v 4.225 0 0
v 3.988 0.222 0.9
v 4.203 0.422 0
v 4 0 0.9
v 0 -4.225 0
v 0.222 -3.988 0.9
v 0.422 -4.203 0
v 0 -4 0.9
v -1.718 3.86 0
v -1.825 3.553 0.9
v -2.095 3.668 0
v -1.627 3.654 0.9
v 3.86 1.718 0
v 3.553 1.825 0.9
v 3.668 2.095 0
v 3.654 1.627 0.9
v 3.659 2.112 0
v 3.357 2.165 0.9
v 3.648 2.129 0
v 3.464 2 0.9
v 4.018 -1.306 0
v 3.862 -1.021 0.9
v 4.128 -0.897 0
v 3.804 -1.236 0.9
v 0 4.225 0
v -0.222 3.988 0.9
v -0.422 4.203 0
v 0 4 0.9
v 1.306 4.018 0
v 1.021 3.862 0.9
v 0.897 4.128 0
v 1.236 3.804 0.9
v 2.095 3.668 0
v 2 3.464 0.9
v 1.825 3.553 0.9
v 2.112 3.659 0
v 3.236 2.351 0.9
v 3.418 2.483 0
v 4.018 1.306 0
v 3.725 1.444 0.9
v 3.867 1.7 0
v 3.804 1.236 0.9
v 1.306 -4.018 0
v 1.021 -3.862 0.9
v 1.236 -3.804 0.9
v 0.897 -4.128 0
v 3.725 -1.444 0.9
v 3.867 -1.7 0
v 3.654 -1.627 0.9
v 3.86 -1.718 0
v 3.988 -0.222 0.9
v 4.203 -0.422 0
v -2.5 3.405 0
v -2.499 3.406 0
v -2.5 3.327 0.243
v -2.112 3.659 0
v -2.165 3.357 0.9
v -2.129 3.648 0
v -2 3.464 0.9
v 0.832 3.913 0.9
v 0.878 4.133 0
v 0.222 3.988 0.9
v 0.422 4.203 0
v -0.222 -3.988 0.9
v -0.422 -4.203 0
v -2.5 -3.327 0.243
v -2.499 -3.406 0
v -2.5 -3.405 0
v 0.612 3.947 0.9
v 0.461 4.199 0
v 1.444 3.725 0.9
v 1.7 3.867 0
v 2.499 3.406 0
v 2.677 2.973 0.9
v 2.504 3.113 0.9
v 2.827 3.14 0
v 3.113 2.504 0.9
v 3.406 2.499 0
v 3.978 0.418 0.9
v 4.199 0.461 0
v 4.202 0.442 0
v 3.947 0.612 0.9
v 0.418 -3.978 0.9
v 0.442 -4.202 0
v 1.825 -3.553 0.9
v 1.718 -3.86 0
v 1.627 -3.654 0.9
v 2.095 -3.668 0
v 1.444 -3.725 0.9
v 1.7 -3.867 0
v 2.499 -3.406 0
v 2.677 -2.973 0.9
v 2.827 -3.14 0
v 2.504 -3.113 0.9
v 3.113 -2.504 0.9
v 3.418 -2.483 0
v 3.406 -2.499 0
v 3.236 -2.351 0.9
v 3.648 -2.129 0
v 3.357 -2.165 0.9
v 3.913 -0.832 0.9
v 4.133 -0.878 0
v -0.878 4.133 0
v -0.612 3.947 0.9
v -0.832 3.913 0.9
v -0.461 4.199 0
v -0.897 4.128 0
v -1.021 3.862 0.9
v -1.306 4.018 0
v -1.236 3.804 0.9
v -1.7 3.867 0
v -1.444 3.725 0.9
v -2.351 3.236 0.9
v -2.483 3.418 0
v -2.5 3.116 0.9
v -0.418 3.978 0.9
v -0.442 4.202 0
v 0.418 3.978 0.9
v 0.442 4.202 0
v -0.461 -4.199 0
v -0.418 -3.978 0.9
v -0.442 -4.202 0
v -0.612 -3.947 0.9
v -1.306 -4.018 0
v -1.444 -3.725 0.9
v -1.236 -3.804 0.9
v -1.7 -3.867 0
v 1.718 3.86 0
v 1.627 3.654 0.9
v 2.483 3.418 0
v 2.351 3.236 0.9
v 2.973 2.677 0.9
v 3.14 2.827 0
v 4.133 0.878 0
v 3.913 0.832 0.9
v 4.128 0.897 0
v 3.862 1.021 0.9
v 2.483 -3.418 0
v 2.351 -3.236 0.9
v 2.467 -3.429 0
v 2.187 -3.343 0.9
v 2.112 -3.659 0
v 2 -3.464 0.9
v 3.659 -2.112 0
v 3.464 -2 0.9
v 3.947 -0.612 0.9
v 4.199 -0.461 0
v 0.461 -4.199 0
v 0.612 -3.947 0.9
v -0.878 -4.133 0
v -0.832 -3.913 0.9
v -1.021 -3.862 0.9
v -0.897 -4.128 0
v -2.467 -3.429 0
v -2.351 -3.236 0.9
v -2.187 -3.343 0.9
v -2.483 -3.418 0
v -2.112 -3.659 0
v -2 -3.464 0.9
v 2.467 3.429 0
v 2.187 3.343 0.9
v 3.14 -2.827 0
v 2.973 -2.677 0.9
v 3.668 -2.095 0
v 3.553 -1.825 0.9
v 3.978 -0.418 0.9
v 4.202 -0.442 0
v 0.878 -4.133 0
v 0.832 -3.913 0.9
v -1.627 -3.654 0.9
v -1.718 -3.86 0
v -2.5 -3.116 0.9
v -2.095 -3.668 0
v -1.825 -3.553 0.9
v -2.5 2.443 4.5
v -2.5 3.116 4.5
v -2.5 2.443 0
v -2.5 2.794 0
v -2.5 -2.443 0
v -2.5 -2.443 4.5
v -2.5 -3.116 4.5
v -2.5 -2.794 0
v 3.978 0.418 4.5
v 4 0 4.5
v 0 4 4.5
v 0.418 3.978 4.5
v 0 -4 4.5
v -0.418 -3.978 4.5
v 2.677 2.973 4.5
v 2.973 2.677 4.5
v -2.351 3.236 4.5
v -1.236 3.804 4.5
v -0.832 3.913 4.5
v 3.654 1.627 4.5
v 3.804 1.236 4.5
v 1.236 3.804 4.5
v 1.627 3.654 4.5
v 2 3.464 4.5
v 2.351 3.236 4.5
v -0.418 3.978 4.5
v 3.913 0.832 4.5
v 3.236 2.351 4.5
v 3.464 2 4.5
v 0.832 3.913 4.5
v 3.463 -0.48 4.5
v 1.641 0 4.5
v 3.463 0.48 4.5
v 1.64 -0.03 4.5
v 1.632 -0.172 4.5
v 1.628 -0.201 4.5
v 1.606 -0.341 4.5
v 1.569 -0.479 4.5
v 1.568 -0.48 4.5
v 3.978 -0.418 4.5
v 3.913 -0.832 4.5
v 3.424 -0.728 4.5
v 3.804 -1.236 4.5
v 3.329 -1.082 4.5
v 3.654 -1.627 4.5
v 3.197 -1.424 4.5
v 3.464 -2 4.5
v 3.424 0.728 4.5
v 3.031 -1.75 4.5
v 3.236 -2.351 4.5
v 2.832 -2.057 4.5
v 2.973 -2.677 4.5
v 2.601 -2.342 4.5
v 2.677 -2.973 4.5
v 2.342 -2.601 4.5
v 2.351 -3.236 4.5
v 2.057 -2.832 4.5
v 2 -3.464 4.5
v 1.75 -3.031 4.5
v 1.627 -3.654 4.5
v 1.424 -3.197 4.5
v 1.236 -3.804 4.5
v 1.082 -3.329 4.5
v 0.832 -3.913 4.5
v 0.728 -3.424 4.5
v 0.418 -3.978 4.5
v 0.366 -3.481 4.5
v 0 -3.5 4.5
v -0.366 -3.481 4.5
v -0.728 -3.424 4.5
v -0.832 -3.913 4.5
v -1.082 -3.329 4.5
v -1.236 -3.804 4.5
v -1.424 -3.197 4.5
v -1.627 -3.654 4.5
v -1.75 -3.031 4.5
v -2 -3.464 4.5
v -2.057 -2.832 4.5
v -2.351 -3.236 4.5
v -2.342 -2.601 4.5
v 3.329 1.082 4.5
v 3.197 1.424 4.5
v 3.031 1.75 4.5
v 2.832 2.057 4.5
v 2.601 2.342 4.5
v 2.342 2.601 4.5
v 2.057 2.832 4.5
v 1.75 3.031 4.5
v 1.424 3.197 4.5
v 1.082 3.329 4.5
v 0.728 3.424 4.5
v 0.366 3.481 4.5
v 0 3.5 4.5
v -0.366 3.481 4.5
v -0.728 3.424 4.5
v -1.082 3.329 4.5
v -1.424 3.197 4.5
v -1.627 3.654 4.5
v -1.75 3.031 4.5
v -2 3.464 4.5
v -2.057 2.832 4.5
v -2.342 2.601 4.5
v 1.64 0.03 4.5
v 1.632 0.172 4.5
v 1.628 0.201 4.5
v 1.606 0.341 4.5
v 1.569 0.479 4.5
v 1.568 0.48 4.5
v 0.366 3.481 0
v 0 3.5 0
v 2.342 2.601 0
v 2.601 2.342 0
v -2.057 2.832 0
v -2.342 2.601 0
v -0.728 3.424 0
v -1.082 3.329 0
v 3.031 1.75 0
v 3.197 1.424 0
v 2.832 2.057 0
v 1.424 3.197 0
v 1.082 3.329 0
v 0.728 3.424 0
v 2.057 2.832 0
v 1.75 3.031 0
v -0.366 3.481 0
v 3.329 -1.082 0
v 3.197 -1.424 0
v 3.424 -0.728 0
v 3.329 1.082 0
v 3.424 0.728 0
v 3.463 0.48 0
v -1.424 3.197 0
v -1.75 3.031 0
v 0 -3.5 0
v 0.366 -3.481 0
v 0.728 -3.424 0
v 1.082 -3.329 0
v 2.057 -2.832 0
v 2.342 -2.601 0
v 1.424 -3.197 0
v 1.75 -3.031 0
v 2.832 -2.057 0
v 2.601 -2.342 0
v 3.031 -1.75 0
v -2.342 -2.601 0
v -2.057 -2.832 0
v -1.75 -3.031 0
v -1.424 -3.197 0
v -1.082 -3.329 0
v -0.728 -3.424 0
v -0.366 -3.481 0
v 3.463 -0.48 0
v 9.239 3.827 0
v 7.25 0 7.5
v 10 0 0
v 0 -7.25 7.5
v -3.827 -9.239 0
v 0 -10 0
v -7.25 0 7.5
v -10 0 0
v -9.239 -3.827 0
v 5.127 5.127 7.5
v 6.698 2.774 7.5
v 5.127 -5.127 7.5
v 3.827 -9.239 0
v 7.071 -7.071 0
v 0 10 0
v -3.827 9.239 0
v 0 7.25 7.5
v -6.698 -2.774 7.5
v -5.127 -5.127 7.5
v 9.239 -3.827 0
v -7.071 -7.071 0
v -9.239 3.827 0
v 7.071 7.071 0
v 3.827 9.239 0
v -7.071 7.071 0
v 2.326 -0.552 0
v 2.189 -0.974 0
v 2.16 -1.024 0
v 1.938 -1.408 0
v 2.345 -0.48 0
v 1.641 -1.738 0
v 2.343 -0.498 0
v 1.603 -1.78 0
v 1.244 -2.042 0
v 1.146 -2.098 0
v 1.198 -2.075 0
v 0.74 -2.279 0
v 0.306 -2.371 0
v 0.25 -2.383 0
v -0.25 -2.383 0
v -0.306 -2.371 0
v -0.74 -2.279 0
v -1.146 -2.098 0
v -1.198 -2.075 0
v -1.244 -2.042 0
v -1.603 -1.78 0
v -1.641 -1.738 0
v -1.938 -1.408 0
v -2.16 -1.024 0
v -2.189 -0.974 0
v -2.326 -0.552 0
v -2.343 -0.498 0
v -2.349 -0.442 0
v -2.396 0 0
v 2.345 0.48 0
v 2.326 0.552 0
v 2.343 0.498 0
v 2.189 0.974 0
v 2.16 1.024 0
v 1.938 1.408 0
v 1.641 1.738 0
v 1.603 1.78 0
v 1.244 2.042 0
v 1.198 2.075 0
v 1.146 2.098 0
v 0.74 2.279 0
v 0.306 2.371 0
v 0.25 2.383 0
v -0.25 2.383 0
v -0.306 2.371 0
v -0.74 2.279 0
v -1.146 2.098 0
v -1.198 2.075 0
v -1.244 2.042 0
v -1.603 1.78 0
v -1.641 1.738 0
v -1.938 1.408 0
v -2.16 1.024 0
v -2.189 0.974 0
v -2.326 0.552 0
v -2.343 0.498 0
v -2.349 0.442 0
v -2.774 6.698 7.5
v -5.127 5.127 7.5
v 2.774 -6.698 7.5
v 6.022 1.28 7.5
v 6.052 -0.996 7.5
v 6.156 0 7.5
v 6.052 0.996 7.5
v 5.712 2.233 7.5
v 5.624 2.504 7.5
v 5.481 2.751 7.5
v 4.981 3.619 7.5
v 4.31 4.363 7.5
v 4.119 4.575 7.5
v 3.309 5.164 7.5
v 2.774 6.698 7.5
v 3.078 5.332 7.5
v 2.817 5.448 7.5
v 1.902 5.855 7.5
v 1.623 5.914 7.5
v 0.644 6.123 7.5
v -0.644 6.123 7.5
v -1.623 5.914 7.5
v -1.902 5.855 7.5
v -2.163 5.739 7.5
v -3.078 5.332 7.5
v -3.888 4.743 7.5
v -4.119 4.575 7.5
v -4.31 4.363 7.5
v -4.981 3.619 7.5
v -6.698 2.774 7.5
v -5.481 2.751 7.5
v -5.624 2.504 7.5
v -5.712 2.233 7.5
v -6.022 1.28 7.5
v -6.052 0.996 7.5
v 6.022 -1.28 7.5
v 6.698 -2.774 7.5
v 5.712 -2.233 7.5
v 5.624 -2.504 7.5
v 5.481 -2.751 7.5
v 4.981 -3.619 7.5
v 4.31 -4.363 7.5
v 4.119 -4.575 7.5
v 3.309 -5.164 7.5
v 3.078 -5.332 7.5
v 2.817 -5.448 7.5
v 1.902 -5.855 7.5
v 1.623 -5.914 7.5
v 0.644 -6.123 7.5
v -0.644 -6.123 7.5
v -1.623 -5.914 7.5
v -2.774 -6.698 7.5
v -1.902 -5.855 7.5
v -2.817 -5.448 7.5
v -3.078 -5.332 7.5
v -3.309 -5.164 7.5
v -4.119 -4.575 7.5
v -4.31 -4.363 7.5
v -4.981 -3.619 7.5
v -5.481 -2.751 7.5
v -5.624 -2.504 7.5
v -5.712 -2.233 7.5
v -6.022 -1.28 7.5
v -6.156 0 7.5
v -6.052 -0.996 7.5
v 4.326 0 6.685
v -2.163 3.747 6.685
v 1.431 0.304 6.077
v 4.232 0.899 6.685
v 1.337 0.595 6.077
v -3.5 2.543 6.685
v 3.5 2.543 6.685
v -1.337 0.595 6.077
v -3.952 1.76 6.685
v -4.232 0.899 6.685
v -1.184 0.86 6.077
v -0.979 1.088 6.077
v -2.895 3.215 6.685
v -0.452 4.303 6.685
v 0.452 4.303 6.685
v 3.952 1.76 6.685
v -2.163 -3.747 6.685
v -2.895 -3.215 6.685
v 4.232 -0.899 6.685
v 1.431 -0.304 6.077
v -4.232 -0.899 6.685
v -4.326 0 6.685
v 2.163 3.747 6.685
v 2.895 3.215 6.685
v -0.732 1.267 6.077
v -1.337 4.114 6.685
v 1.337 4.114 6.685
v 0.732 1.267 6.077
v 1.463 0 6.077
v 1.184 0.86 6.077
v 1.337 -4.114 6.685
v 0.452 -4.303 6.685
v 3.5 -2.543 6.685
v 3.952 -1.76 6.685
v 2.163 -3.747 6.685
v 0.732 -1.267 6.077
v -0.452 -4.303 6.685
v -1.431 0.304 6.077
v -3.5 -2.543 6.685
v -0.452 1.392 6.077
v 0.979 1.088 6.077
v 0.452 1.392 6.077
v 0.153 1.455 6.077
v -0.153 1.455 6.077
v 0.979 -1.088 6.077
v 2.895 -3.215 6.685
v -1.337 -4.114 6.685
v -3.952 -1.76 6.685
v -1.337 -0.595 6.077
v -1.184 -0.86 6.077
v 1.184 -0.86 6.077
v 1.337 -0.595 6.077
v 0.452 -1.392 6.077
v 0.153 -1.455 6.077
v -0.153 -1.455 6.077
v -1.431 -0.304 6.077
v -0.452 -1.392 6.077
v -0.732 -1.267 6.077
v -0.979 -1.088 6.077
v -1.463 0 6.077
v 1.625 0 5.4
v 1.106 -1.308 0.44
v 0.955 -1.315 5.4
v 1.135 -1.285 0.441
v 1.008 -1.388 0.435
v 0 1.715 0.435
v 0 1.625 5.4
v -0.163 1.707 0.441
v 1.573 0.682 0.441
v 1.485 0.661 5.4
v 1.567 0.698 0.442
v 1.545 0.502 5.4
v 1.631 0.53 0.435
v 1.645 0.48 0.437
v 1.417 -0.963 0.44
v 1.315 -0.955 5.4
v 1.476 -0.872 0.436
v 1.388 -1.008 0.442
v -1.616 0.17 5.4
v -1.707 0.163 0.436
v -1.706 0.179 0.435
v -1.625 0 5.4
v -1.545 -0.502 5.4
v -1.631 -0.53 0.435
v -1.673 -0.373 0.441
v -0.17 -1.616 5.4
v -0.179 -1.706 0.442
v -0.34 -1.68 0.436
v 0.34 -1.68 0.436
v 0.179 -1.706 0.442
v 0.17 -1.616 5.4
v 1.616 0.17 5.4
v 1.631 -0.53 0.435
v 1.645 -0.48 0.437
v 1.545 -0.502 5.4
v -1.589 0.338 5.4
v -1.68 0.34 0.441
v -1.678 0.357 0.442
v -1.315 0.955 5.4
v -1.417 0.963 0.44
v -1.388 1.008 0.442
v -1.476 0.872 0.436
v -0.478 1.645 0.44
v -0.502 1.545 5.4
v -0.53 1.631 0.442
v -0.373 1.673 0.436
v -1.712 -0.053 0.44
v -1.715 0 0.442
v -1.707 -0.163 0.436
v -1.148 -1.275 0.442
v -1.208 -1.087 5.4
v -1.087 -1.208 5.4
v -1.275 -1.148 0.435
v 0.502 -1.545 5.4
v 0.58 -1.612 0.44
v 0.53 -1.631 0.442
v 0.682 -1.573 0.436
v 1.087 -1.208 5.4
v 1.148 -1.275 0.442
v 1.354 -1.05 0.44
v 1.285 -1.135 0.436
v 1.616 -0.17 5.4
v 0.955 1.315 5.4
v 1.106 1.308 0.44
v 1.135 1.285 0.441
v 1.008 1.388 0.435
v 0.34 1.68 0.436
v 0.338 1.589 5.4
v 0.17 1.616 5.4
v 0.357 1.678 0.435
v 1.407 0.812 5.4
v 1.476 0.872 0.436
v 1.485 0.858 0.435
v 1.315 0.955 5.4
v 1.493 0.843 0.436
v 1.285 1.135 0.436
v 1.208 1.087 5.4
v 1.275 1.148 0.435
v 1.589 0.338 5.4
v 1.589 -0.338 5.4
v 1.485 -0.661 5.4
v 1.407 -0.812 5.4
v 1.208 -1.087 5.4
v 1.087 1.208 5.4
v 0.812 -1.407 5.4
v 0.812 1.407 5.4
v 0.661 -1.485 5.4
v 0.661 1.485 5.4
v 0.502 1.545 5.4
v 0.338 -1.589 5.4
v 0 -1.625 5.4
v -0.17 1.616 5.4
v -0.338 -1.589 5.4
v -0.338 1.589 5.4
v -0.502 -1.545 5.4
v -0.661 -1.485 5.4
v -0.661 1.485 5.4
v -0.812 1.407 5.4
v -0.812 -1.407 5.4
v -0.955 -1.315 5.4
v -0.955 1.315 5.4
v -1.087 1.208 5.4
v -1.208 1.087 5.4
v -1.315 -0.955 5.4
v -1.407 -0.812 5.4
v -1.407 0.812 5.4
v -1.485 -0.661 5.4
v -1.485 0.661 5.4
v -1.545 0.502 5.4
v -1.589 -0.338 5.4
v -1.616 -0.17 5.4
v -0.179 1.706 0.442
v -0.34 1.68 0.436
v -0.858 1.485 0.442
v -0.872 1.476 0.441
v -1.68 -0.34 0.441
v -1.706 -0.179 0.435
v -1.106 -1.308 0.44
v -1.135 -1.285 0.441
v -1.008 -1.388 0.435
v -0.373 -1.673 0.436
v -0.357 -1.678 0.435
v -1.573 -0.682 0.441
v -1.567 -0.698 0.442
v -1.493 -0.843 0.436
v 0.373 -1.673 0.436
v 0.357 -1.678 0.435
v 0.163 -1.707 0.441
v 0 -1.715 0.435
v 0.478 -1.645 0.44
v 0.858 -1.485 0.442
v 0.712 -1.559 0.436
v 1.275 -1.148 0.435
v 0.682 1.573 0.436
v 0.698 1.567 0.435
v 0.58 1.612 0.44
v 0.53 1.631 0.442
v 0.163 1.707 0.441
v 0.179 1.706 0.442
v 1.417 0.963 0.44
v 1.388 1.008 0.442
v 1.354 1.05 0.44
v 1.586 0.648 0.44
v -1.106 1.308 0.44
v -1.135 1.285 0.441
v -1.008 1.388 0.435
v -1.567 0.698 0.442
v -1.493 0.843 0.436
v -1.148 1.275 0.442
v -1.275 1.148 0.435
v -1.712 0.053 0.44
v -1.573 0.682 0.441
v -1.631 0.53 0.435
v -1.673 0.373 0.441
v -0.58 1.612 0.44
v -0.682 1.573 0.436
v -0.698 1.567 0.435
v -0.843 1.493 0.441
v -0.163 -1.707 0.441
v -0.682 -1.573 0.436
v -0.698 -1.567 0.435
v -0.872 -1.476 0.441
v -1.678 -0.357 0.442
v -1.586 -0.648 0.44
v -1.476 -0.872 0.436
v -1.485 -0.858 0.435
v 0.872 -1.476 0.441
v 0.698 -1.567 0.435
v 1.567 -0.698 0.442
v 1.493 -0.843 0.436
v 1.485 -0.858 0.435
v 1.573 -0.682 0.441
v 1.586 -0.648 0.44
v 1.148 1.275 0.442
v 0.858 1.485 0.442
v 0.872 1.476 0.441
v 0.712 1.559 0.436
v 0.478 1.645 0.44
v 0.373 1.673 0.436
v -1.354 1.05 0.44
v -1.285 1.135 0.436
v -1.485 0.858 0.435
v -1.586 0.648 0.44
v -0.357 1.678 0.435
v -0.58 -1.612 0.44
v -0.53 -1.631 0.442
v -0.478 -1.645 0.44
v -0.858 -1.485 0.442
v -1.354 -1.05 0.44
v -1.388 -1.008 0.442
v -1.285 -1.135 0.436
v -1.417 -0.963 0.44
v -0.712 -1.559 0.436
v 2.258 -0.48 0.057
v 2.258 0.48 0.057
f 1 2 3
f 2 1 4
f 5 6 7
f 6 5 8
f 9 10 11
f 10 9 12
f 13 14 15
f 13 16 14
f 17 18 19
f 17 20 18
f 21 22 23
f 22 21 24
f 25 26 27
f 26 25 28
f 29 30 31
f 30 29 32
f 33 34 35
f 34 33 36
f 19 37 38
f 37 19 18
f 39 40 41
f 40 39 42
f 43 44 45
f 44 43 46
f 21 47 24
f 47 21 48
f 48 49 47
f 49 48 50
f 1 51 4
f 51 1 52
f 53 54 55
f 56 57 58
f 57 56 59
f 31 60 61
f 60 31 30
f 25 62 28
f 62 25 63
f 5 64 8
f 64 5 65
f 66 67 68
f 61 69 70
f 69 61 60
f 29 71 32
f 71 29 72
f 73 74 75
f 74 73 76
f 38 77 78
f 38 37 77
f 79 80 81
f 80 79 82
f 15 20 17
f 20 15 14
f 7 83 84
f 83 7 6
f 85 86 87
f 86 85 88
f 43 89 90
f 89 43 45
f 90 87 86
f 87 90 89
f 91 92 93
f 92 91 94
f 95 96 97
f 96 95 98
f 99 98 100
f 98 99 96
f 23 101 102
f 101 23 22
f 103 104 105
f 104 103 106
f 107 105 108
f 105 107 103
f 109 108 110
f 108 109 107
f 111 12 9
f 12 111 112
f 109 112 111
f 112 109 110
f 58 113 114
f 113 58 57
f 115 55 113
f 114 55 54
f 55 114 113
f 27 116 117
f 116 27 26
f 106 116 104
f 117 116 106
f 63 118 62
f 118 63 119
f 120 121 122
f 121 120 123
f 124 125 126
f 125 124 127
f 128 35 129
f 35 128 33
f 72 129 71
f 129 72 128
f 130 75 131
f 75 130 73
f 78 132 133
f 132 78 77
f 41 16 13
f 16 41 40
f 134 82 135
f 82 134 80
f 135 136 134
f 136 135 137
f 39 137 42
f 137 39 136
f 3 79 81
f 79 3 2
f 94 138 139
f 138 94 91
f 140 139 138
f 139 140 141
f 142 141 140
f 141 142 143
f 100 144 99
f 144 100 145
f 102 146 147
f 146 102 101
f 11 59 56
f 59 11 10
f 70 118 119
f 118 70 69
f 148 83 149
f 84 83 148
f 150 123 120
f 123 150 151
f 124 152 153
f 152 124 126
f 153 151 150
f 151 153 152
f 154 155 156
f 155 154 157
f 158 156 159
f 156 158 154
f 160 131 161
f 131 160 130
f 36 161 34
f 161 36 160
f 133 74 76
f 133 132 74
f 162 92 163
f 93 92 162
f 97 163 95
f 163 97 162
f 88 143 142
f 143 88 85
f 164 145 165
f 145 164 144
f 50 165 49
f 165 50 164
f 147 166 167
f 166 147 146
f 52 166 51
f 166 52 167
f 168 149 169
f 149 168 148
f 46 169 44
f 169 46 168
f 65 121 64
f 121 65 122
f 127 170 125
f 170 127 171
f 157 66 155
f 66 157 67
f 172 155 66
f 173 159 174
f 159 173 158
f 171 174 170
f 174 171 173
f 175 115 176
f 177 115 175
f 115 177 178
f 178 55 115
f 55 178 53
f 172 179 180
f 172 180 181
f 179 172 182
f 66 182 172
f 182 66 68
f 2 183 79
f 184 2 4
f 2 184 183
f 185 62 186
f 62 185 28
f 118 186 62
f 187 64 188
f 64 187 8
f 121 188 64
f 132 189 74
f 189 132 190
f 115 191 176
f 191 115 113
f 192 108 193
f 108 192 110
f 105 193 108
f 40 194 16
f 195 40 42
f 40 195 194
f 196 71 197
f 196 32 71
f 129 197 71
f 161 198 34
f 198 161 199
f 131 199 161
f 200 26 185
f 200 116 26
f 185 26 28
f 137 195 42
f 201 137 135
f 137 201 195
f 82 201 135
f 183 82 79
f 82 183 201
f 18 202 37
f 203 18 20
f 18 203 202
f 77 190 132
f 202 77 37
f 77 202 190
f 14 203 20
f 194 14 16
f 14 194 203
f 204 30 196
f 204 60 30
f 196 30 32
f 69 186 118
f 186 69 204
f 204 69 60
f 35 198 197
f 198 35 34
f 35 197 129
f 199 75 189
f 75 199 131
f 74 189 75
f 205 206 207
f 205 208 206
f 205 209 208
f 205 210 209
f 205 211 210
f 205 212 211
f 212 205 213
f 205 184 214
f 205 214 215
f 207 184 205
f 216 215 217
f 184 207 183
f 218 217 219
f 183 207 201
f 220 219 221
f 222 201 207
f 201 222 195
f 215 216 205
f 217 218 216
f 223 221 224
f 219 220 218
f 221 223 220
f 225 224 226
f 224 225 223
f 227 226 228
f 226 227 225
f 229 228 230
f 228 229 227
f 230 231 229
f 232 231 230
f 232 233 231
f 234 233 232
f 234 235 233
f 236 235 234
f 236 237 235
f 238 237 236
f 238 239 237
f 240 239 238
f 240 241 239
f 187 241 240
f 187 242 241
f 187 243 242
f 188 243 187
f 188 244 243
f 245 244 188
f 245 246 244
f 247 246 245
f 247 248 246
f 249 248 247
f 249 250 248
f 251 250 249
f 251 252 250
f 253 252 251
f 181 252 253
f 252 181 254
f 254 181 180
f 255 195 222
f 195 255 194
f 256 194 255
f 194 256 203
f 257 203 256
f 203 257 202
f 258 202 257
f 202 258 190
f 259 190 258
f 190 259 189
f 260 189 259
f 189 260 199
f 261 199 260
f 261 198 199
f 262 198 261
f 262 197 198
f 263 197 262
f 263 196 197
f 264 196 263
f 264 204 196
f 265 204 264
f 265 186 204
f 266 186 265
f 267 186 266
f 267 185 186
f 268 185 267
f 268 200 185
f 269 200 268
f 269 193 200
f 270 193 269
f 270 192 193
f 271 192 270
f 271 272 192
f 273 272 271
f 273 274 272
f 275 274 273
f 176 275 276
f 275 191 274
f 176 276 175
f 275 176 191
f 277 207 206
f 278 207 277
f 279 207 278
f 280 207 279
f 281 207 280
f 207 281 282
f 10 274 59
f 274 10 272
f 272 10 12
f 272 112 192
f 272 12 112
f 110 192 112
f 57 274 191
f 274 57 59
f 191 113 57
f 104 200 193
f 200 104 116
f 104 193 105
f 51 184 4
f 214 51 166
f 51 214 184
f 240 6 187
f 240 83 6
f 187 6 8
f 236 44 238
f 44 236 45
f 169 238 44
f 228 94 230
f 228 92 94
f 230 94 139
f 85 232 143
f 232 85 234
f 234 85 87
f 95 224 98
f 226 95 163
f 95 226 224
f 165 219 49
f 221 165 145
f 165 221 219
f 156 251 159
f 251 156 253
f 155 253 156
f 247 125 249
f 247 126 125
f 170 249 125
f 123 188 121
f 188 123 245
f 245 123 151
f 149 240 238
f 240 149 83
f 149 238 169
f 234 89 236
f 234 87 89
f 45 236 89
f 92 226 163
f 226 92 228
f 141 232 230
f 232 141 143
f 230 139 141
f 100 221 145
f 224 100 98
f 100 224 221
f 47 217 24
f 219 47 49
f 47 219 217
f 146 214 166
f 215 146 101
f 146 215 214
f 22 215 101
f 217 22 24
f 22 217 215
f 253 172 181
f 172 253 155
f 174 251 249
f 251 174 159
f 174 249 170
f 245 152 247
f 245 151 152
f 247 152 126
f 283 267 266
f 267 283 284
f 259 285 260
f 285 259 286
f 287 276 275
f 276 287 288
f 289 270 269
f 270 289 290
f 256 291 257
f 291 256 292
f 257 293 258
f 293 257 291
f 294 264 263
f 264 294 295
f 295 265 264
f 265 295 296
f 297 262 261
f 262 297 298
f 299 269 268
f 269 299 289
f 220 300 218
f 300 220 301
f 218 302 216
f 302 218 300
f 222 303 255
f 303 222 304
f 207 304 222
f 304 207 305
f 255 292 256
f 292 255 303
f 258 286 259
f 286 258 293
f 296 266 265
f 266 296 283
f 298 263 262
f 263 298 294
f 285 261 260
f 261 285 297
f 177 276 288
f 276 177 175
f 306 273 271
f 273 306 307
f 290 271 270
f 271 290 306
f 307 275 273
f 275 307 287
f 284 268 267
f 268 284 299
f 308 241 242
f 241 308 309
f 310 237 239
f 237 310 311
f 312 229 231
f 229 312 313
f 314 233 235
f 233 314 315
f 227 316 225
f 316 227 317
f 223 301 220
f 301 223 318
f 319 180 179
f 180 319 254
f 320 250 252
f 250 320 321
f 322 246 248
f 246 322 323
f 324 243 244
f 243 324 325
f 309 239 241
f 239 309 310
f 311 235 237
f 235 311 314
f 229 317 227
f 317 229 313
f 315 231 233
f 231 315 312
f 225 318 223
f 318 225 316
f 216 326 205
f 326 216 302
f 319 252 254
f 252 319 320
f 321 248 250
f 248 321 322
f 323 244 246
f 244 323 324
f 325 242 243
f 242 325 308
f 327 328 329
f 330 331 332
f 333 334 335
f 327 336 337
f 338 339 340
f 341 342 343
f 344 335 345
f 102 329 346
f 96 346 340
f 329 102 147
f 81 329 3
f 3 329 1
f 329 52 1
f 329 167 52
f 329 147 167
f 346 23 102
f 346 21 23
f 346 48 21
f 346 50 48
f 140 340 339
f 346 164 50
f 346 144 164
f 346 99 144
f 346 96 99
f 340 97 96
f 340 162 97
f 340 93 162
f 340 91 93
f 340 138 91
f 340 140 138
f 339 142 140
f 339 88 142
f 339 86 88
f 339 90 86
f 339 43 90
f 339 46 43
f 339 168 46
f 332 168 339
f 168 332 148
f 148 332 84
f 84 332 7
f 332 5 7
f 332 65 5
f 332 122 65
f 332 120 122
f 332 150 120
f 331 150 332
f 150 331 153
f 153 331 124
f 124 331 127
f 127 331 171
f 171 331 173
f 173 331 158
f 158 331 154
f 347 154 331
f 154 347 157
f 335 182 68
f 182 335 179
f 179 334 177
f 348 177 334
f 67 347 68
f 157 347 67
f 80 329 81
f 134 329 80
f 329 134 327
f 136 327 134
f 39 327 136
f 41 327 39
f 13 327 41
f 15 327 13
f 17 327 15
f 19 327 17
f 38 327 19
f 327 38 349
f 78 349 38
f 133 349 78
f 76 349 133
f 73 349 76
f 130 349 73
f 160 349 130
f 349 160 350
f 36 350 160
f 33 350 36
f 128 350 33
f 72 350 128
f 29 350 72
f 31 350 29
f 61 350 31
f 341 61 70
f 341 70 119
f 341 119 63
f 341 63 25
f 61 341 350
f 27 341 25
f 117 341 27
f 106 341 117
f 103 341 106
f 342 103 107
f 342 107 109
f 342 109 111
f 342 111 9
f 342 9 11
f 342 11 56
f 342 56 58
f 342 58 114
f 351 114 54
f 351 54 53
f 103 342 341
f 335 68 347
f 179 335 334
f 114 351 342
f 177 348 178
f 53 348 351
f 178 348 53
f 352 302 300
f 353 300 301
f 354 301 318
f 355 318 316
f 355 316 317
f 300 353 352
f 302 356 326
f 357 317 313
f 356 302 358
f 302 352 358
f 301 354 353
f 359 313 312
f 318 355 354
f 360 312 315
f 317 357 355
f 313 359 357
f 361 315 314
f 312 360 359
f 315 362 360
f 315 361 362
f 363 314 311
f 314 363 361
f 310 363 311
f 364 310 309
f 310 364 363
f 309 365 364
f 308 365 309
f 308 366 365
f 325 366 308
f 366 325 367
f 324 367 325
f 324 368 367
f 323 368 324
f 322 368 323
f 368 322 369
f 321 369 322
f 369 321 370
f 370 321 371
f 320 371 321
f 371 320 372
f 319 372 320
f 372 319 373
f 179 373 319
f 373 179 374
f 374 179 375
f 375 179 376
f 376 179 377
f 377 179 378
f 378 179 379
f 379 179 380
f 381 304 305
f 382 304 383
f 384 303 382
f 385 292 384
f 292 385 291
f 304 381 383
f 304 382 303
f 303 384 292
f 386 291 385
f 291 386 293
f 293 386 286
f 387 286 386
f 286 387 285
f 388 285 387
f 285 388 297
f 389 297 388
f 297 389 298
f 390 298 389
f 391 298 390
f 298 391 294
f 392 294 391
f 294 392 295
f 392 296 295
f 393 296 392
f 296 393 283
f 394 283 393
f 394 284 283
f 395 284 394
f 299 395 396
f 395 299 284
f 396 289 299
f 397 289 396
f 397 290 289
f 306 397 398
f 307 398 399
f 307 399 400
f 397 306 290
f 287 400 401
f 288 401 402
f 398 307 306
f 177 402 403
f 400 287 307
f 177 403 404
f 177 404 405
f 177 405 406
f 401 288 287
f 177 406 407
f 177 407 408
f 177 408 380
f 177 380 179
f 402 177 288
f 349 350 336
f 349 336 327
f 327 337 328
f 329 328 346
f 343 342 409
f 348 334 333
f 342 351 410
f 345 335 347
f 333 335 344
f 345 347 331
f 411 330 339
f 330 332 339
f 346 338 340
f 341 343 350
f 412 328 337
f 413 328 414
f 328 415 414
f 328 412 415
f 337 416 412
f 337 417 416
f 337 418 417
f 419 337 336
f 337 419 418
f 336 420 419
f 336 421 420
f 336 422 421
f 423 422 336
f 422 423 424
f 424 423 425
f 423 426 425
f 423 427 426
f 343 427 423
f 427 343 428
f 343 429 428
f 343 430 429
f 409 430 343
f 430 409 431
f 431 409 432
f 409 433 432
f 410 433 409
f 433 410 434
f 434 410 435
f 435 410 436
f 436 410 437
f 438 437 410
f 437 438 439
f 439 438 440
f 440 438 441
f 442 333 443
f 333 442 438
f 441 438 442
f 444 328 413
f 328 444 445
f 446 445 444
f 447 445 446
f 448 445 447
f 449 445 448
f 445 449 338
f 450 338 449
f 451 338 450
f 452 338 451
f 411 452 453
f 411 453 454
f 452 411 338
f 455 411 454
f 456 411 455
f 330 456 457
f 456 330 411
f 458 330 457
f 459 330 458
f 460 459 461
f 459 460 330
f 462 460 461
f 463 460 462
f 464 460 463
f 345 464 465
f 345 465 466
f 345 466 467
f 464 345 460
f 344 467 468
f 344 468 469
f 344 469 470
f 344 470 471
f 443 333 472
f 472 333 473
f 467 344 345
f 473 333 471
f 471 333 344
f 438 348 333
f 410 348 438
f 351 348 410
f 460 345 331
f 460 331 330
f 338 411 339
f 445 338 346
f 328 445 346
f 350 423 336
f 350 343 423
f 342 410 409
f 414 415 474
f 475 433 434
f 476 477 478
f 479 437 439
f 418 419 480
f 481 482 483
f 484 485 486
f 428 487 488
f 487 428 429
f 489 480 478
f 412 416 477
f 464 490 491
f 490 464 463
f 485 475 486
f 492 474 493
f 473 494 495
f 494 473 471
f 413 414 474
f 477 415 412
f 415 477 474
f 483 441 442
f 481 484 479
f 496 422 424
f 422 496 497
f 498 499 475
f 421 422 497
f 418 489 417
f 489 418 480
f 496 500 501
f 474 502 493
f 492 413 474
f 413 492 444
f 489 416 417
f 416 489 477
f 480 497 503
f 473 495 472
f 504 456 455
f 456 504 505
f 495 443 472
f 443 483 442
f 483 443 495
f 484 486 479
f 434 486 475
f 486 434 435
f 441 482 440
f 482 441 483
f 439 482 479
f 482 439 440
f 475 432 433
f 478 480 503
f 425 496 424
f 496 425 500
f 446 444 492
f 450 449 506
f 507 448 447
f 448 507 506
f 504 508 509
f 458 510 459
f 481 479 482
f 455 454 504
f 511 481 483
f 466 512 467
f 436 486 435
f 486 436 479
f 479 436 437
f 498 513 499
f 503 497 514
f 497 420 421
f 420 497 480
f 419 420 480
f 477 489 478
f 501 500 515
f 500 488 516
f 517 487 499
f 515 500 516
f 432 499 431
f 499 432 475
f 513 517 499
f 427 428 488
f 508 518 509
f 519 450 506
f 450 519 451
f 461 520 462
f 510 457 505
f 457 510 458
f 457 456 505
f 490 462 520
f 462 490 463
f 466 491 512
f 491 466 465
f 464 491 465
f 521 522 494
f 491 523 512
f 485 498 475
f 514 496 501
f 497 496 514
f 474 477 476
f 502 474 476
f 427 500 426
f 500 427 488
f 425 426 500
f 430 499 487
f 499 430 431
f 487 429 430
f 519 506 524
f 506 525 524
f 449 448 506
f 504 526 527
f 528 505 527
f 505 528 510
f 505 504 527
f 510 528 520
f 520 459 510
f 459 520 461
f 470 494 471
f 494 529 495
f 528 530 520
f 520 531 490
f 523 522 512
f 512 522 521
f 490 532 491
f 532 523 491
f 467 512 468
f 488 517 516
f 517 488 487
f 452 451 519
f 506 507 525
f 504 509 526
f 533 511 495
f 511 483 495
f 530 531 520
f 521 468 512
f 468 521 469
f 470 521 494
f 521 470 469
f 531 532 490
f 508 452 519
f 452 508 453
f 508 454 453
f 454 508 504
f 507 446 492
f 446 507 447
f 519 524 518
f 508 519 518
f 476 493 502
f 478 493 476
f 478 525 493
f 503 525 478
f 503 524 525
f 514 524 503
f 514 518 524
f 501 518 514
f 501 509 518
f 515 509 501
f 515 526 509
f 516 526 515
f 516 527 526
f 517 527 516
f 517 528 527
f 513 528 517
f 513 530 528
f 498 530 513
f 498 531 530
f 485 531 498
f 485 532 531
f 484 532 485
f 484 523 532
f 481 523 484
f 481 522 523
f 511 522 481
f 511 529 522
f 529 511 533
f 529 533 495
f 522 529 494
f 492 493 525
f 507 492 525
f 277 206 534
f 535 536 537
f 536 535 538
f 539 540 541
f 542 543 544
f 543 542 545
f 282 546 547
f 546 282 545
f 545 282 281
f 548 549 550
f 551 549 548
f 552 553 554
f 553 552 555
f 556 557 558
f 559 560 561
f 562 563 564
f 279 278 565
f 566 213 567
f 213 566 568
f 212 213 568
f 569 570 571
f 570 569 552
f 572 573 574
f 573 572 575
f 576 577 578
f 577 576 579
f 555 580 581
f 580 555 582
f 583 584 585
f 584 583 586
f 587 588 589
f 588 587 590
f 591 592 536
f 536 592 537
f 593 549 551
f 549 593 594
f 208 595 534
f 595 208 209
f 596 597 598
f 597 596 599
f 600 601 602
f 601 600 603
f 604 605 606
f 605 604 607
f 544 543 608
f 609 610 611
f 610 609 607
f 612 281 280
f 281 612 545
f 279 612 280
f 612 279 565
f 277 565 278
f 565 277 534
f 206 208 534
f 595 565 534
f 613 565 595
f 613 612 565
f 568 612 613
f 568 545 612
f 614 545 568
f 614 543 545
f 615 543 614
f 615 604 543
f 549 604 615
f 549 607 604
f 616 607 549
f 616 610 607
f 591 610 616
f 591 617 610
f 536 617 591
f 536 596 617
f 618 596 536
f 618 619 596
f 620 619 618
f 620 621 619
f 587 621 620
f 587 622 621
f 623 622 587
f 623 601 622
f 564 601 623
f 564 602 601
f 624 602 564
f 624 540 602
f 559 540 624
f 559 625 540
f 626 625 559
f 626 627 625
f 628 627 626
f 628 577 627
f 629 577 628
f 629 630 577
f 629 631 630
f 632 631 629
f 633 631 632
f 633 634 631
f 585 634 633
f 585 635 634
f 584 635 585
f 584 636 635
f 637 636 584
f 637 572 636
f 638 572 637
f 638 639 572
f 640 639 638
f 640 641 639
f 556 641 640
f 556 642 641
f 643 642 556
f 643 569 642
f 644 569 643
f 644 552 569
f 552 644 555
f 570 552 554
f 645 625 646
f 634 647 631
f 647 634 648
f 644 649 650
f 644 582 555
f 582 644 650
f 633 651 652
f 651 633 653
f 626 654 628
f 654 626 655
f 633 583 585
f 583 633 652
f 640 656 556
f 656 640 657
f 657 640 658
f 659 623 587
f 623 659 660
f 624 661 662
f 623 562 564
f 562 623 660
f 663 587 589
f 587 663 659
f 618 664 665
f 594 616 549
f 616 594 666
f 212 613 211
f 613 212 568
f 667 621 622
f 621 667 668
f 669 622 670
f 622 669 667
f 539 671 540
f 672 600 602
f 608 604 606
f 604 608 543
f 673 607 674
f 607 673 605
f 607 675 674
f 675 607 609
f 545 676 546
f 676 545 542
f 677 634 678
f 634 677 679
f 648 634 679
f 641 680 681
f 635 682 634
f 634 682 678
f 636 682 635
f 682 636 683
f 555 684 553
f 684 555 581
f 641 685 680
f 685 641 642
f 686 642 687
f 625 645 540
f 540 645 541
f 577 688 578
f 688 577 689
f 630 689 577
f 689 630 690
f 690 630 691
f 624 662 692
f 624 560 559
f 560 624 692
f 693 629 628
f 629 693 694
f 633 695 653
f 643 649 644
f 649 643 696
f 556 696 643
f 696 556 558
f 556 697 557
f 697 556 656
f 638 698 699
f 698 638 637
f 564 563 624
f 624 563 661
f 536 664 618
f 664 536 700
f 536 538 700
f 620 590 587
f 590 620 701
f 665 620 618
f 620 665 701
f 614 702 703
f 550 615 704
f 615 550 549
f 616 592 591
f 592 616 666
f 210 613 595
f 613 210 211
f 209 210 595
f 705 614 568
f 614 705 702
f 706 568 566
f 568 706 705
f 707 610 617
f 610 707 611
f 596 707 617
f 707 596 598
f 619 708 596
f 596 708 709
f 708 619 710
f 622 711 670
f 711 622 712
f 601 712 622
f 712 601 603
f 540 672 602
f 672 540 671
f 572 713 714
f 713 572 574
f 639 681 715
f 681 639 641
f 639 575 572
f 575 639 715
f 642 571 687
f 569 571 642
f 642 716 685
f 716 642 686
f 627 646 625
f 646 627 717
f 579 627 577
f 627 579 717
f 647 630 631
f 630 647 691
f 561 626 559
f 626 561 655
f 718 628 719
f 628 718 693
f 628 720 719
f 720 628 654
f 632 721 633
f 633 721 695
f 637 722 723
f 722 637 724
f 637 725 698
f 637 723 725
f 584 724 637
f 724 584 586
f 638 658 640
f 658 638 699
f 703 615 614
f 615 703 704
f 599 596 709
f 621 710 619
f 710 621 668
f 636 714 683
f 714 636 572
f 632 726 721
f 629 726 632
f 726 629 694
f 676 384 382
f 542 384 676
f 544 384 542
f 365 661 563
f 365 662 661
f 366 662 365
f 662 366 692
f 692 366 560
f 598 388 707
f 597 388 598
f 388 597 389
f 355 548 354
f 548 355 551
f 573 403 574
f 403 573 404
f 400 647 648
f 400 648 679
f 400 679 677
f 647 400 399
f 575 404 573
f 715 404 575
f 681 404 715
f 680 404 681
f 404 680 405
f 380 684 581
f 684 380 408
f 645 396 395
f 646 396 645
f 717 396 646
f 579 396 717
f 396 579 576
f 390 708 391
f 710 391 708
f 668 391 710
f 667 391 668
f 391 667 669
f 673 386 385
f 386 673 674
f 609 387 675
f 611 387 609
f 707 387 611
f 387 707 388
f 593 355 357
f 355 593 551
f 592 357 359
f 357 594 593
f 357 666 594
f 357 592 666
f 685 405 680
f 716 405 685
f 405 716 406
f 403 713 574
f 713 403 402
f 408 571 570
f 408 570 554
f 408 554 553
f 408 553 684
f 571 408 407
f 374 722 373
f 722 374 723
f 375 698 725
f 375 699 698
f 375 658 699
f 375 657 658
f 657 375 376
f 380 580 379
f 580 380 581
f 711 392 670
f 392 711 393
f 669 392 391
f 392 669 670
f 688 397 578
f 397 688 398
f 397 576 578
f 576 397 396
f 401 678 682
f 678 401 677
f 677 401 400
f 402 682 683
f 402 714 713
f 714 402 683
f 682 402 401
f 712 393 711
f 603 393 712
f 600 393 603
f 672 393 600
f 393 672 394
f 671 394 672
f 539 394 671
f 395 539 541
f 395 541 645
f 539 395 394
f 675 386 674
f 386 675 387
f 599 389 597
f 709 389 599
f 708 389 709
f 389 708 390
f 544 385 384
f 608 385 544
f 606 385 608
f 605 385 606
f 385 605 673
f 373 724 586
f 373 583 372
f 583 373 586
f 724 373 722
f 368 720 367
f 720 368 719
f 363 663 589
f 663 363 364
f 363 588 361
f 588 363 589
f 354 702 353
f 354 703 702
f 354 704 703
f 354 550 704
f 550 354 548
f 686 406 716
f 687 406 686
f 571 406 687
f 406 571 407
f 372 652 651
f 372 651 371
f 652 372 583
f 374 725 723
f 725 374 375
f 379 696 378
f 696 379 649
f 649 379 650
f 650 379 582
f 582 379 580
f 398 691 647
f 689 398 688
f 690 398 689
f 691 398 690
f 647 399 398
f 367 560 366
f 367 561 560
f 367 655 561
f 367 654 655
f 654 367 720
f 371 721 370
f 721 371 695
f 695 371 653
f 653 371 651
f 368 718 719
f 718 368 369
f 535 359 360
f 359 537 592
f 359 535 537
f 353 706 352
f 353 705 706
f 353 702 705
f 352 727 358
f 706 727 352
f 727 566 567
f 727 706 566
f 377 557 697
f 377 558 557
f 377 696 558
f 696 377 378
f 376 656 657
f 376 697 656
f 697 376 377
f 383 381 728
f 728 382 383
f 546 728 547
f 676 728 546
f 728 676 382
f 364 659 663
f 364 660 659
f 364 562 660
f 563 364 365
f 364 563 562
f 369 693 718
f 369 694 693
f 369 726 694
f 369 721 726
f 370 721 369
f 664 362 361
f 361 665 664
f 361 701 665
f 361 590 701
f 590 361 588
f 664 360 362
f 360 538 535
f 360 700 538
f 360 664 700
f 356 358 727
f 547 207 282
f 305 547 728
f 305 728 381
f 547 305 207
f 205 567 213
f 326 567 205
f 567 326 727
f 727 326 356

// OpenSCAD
// PRUSA iteration3
// LCD Knob
// GNU GPL v3
// Josef Průša <iam@josefprusa.cz> and contributors
// http://www.reprap.org/wiki/Prusa_Mendel
// http://prusamendel.org

difference () {

// main body

translate([0,0,0]) rotate(a=[0,0,0]) cylinder(h = 7.5, r1=10, r=7.25, $fn=16);

translate([0,0,20]) rotate(a=[0,0,0]) sphere(14);

// knob cutout
translate([0,0,-0.1]) rotate(a=[0,0,0]) cylinder(h = 5.5, d1=3.45, d2=3.25, $fn=60);
    
translate([0,0,-0.1]) rotate(a=[0,0,0]) cylinder(h = 0.6, d1=5.1, d2=3.25 , $fn=30); 
    
translate([0,0.48,-0.1]) rotate(a=[0,0,-90]) cube([0.96,3.9,4.6]);

// first layer correction
union () {

difference (){    
translate([0,0,-0.1]) rotate(a=[0,0,0]) cylinder(h = 2,d1= 8.5, d2=7.5, $fn=60);
translate([0,0,-0.15]) rotate(a=[0,0,0]) cylinder(h = 2,d1= 7.5, d2=7.5, $fn=60);
translate([0,0,1]) rotate(a=[0,0,0]) cylinder(h = 2,d= 13, $fn=30);
    translate([-12.5,-6,-0.2]) rotate(a=[0,0,0]) cube([10,12,4.6]);
}
}      
    

difference () {

translate([0,0,-0.1]) rotate(a=[0,0,0]) cylinder(h = 4.6, d=8, $fn=60);
translate([0,0,-0.2]) rotate(a=[0,0,0]) cylinder(h = 4.8, d= 7, $fn=60);
translate([-12.5,-6,-0.2]) rotate(a=[0,0,0]) cube([10,12,4.8]);
    
    }    
    
    
    
    }
